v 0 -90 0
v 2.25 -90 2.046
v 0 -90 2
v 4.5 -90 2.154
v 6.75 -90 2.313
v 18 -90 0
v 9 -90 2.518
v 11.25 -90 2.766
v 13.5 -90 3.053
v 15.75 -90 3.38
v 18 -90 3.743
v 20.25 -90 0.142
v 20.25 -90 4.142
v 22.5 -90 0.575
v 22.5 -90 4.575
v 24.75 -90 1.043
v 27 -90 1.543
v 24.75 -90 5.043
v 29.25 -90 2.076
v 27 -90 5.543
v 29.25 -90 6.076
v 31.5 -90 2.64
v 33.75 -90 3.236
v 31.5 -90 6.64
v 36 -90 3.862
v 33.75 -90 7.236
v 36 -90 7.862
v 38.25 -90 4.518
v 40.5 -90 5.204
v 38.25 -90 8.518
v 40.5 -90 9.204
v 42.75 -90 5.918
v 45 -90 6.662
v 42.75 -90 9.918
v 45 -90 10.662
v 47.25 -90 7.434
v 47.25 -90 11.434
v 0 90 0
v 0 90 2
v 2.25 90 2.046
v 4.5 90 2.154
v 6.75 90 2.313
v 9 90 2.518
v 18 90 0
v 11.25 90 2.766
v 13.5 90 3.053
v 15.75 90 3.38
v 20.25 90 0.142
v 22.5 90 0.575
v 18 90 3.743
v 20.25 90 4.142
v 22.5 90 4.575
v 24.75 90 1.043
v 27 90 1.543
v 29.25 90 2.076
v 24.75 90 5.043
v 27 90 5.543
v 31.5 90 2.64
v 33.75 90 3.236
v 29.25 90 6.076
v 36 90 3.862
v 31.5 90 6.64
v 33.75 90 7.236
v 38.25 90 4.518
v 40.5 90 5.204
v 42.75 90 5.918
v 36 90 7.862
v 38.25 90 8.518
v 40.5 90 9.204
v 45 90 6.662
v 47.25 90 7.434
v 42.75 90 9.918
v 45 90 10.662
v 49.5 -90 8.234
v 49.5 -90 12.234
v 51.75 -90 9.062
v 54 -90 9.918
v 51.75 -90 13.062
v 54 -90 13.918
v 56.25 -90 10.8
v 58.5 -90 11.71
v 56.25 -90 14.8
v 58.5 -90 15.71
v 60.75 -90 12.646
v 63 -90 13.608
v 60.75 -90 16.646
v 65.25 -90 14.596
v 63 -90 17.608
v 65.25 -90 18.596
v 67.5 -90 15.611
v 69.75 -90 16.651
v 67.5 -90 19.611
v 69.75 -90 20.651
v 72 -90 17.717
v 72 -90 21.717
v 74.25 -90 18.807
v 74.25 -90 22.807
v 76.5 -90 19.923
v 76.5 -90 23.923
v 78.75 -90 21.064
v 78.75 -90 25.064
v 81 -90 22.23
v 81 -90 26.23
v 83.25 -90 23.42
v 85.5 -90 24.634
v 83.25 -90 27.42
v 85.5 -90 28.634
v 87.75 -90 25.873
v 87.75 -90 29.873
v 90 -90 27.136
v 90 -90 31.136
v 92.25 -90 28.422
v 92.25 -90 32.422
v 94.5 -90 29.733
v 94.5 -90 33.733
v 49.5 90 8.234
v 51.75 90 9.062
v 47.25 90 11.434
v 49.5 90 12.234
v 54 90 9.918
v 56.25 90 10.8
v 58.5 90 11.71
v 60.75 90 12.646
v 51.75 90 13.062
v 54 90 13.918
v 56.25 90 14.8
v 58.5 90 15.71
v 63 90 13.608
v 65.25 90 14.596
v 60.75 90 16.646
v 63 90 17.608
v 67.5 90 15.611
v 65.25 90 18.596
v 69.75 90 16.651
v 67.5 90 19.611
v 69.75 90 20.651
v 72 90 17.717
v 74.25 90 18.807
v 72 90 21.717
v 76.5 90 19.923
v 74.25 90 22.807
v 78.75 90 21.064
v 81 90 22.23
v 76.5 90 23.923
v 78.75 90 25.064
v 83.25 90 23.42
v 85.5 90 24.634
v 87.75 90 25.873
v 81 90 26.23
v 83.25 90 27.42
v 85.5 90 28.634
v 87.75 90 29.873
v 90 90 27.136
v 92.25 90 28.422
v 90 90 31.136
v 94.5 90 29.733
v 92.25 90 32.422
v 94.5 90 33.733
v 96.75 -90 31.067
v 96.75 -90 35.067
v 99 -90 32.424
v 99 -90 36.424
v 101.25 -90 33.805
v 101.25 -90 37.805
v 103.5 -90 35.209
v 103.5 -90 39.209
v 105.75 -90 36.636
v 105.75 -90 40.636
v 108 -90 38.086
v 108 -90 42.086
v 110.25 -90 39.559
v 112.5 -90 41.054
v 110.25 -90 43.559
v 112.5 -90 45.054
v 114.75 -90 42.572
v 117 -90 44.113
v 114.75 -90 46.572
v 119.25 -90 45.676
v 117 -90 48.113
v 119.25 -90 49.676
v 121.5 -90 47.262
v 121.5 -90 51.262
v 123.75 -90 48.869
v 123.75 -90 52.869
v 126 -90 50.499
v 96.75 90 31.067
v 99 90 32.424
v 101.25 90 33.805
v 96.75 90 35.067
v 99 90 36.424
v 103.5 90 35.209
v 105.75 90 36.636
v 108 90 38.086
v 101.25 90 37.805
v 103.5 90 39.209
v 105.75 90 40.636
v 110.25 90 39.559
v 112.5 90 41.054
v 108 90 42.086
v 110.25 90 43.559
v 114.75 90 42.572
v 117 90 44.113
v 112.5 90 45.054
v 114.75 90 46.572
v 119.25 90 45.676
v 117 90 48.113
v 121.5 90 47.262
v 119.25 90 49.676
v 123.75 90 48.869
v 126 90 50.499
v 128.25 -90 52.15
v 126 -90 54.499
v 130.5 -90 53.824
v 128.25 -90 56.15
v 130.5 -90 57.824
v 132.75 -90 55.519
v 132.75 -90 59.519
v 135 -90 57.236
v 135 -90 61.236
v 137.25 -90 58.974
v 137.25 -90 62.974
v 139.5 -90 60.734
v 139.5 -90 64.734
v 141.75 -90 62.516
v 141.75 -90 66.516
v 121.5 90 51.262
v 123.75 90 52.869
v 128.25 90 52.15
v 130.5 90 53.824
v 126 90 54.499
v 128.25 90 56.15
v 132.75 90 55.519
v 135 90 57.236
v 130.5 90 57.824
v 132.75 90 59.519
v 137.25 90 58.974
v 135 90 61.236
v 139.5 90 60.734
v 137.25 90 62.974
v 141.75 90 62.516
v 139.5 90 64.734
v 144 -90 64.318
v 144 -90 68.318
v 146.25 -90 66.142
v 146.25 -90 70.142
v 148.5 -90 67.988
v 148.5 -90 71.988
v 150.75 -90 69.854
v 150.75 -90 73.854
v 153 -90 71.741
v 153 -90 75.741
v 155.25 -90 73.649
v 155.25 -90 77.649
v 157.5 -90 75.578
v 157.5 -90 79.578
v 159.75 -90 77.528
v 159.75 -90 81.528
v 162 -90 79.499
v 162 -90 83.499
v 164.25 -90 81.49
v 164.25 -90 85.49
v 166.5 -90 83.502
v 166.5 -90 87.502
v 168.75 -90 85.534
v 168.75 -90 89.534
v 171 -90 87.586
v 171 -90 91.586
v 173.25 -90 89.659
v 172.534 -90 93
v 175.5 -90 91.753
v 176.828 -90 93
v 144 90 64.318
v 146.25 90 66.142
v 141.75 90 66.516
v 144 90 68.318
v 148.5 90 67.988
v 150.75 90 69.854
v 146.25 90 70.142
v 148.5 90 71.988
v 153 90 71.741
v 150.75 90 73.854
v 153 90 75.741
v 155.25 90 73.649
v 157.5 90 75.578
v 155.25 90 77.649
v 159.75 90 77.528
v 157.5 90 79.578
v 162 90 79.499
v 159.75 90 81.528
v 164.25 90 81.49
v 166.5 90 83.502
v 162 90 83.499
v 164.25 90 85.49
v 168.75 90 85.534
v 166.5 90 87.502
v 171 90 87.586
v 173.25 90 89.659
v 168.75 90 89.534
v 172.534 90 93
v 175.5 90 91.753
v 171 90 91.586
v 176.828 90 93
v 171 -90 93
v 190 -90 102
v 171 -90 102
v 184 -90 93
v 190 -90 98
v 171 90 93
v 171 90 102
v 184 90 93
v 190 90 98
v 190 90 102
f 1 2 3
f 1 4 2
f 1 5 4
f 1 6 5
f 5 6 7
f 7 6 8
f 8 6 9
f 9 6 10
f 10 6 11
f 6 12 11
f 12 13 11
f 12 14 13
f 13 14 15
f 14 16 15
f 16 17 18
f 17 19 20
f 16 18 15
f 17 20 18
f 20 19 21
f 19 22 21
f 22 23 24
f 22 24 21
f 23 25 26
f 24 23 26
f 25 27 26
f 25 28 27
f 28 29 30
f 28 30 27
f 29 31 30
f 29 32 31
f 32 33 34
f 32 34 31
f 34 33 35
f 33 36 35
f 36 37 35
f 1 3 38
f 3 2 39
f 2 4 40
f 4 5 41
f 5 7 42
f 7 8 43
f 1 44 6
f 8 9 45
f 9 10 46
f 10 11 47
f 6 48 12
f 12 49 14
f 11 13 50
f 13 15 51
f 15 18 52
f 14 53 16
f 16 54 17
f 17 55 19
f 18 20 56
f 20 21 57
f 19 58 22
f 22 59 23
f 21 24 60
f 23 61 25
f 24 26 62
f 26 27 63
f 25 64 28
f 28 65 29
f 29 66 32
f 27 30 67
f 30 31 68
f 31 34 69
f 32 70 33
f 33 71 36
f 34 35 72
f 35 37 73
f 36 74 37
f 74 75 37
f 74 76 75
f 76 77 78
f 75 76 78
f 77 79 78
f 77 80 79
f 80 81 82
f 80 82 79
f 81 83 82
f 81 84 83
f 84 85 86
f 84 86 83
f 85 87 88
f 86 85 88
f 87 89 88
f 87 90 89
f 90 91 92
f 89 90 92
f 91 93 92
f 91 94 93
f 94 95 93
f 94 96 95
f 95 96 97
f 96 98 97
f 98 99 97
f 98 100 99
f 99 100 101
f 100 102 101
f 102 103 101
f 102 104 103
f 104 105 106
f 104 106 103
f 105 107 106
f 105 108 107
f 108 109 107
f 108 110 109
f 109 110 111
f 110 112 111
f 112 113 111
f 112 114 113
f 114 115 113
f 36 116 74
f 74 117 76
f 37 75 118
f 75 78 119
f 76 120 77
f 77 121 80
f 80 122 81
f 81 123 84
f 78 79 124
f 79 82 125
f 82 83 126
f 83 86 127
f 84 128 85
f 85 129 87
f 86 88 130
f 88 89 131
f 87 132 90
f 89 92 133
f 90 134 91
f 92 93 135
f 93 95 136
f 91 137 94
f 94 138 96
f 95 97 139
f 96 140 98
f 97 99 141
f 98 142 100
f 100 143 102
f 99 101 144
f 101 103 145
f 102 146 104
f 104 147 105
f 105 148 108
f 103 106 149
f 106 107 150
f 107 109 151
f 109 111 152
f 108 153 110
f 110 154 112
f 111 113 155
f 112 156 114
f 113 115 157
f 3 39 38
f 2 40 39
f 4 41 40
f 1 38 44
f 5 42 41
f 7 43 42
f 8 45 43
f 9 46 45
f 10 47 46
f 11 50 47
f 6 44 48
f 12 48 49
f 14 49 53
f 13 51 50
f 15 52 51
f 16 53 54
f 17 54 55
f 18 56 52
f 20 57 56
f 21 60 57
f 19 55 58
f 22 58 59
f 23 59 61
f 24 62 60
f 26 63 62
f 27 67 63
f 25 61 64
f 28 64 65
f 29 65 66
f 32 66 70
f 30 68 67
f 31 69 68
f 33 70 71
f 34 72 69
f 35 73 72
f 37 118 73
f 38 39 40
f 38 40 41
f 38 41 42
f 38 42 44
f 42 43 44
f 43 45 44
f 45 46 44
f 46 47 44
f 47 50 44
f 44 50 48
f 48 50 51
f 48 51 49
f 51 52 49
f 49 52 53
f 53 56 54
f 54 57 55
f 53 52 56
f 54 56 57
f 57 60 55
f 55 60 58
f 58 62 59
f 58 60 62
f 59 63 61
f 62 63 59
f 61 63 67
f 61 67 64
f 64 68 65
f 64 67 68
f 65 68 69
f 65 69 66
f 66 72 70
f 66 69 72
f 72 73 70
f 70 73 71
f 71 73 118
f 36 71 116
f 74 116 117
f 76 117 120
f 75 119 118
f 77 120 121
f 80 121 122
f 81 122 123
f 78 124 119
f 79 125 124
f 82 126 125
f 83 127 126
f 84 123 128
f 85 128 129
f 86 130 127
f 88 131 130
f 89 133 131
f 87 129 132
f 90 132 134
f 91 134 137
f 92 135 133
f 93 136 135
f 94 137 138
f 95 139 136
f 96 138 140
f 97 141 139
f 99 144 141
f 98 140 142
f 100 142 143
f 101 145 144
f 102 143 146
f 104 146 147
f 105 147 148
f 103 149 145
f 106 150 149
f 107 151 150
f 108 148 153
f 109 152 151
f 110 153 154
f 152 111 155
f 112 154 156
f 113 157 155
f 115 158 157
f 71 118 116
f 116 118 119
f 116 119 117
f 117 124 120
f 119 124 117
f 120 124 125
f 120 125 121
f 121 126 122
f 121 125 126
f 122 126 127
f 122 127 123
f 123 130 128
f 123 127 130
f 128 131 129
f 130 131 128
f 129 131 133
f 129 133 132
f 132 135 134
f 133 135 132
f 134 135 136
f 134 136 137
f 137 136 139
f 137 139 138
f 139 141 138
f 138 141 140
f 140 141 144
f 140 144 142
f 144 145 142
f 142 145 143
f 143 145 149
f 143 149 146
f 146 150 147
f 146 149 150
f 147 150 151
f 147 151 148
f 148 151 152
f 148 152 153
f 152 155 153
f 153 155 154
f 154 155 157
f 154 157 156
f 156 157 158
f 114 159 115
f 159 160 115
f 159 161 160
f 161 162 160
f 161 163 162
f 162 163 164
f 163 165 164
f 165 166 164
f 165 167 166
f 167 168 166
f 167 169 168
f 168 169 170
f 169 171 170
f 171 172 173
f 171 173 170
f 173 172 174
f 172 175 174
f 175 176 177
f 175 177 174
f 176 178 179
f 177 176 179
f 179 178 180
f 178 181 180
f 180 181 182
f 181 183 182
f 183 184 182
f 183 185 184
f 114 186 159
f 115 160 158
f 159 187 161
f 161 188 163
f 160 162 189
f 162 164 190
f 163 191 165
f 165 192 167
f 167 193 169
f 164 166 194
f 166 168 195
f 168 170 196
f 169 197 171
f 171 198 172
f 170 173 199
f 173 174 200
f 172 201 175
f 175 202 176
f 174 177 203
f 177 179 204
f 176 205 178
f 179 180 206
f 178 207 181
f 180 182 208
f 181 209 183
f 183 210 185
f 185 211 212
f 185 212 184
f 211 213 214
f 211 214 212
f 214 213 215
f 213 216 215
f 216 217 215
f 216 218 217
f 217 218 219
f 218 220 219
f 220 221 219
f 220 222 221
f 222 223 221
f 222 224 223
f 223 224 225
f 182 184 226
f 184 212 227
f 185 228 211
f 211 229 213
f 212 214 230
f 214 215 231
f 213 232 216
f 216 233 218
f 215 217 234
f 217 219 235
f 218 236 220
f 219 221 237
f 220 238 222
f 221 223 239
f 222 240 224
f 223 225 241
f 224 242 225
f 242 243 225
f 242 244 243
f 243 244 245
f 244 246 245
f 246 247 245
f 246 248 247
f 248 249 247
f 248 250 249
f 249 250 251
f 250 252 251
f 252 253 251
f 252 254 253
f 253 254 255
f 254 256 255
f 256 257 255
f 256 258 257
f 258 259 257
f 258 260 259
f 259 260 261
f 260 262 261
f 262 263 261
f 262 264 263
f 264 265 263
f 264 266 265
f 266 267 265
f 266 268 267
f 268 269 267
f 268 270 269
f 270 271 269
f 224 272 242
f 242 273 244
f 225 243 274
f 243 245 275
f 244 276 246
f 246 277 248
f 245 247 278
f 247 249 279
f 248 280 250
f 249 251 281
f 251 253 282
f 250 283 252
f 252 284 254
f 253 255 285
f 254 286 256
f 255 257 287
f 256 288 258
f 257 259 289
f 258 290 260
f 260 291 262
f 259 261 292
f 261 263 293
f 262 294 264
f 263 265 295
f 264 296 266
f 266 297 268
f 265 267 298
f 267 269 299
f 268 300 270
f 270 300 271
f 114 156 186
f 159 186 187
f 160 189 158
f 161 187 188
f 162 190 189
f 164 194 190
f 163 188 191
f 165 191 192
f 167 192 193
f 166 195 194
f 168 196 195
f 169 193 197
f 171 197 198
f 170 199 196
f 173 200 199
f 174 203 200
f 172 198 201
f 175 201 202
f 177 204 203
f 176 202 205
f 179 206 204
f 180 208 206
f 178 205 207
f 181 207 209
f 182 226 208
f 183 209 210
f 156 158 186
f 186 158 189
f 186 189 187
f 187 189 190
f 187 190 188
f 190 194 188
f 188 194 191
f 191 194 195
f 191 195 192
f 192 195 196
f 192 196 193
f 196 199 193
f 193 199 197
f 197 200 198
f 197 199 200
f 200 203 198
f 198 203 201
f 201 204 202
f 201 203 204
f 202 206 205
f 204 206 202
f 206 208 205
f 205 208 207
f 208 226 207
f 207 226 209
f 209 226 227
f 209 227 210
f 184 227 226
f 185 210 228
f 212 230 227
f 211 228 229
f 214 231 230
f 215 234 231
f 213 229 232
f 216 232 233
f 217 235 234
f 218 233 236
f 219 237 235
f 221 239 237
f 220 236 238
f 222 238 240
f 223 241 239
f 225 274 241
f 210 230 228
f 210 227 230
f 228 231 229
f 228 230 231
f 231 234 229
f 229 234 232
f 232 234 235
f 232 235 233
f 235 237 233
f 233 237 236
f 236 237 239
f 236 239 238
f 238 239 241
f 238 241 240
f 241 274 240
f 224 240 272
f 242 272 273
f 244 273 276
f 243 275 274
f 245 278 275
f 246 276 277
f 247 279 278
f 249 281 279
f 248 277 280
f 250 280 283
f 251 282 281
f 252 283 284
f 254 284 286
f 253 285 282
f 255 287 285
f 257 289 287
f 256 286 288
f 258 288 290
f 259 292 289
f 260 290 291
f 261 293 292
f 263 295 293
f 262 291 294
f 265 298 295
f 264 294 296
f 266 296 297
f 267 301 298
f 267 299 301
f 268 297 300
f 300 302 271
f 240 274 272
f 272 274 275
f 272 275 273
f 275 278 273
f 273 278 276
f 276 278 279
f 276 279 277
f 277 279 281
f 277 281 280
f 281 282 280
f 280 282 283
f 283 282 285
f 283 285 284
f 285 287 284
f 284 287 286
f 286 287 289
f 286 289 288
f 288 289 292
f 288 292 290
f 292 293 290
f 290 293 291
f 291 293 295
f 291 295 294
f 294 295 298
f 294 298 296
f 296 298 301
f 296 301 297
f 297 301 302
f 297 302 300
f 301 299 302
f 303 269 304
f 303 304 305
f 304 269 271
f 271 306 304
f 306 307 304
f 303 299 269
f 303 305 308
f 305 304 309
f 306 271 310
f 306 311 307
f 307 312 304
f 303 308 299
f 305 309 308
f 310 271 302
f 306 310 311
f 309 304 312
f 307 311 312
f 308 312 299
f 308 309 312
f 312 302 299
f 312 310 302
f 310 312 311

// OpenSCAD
// Curved centre scoop for the tennis-ball collector.
//
// Coordinate system:
//   X = ball travel, from the floor-level front lip toward the collector
//   Y = scoop width
//   Z = height above the floor
//
// The default 180 x 180 x 100 mm scoop fits common hobby printers.
// Set render_part to "left" or "right" to export two 90 mm wide halves.

$fn = 72;

// Main dimensions (mm).
scoop_width = 180;
scoop_length = 180;
scoop_height = 100;
shell_thickness = 4;
front_lip_height = 2;

// Shape controls.
// Values above 1 make the entry shallow and the rear progressively steeper.
curve_exponent = 1.75;
curve_steps = 80;

// Optional edge guides. Keep disabled when this is only the centre section.
edge_guides = false;
guide_height = 20;
guide_thickness = 4;

// Detachable rear mounts. A continuous keyed rail is printed with the scoop;
// two identical ears slide onto it from either side and bolt to the base.
mounting_rail = true;
mount_ear_length = 38;
mount_ear_width = 28;
mount_ear_height = 16;
mount_hole_diameter = 5.5;
mount_hole_edge_offset = 12;
mount_fit_clearance = 0.30; // Per side; tune for the printer/material.

// Roller fit-check dimensions: 120 mm capture width x 45 mm diameter.
roller_diameter = 45;
roller_width = 120;
roller_bore_diameter = 6.35;
roller_shaft_length = 190;
roller_center_x = 135;
roller_ramp_gap = 60;
roller_center_z =
    front_lip_height
    + (scoop_height - front_lip_height)
        * pow(roller_center_x / scoop_length, curve_exponent)
    + roller_diameter / 2
    + roller_ramp_gap;
roller_bracket_thickness = 8;
roller_bracket_width = 38;
roller_shaft_clearance = 0.35;
motor_body_diameter = 37;
motor_body_length = 45;
shaft_coupler_diameter = 16;
shaft_coupler_length = 20;

// "scoop", "left", "right", "ear", "roller", or "assembly".
// Wrapper SCAD files set part_override before including this source.
render_part = is_undef(part_override) ? "scoop" : part_override;

function ramp_z(x) =
    front_lip_height
    + (scoop_height - front_lip_height) * pow(x / scoop_length, curve_exponent);

function inner_z(x) = max(0, ramp_z(x) - shell_thickness);

function shell_profile_points() =
    concat(
        [for (i = [0 : curve_steps])
            let(x = scoop_length * i / curve_steps)
            [x, ramp_z(x)]],
        [for (i = [curve_steps : -1 : 0])
            let(x = scoop_length * i / curve_steps)
            [x, inner_z(x)]]
    );

function guide_profile_points() =
    concat(
        [for (i = [0 : curve_steps])
            let(x = scoop_length * i / curve_steps)
            [x, ramp_z(x)]],
        [for (i = [curve_steps : -1 : 0])
            let(x = scoop_length * i / curve_steps)
            [x, ramp_z(x) + guide_height]]
    );

module curved_shell(width = scoop_width) {
    rotate([90, 0, 0])
        linear_extrude(height = width, center = true, convexity = 10)
            polygon(points = shell_profile_points());
}

module side_guide(y) {
    translate([0, y, 0])
        rotate([90, 0, 0])
            linear_extrude(height = guide_thickness, center = true, convexity = 10)
                polygon(points = guide_profile_points());
}

function rail_profile(clearance = 0) = [
    [scoop_length - 9 - clearance, scoop_height - 7 - clearance],
    [scoop_length + 4 + clearance, scoop_height - 7 - clearance],
    [scoop_length + 10 + clearance, scoop_height - 2 - clearance],
    [scoop_length + 10 + clearance, scoop_height + 2 + clearance],
    [scoop_length - 9 - clearance, scoop_height + 2 + clearance]
];

module rear_mounting_rail() {
    rotate([90, 0, 0])
        linear_extrude(height = scoop_width, center = true, convexity = 10)
            polygon(points = rail_profile());
}

module mounting_ear_at(y = 0) {
    ear_start_x = scoop_length - 12;
    ear_start_z = scoop_height - 10;
    hole_x = scoop_length + mount_ear_length - mount_hole_edge_offset;

    difference() {
        translate([ear_start_x, y - mount_ear_width / 2, ear_start_z])
            cube([
                mount_ear_length + 12,
                mount_ear_width,
                mount_ear_height
            ]);

        // Keyed channel runs through the ear so it can slide along the rail.
        translate([0, y, 0])
            rotate([90, 0, 0])
                linear_extrude(
                    height = mount_ear_width + 2,
                    center = true,
                    convexity = 10
                )
                    polygon(points = rail_profile(mount_fit_clearance));

        translate([hole_x, y, ear_start_z - 0.5])
            cylinder(h = mount_ear_height + 1, d = mount_hole_diameter);
    }
}

module standalone_mounting_ear() {
    // Localized near the origin for straightforward slicer placement.
    translate([
        -(scoop_length - 12),
        mount_ear_width / 2,
        -(scoop_height - 10)
    ])
        mounting_ear_at(0);
}

module collector_roller() {
    difference() {
        rotate([90, 0, 0])
            cylinder(h = roller_width, d = roller_diameter, center = true);

        rotate([90, 0, 0])
            cylinder(
                h = roller_width + 2,
                d = roller_bore_diameter,
                center = true
            );
    }
}

module roller_support(y) {
    support_bottom_z = scoop_height + 2;
    support_height = roller_center_z - support_bottom_z + 25;

    difference() {
        translate([
            roller_center_x - roller_bracket_width / 2,
            y - roller_bracket_thickness / 2,
            support_bottom_z
        ])
            cube([
                roller_bracket_width,
                roller_bracket_thickness,
                support_height
            ]);

        translate([roller_center_x, y, roller_center_z])
            rotate([90, 0, 0])
                cylinder(
                    h = roller_bracket_thickness + 2,
                    d = roller_bore_diameter + roller_shaft_clearance,
                    center = true
                );
    }
}

module roller_drive_assembly() {
    support_y = roller_width / 2 + roller_bracket_thickness / 2 + 3;
    motor_y = support_y + roller_bracket_thickness / 2
        + shaft_coupler_length + motor_body_length / 2;

    // Printable roller.
    color([0.10, 0.10, 0.10])
        translate([roller_center_x, 0, roller_center_z])
            collector_roller();

    // Metal shaft: reference geometry only, not intended for printing.
    color([0.72, 0.72, 0.75])
        translate([roller_center_x, 0, roller_center_z])
            rotate([90, 0, 0])
                cylinder(
                    h = roller_shaft_length,
                    d = roller_bore_diameter,
                    center = true
                );

    color([0.85, 0.68, 0.15]) {
        roller_support(-support_y);
        roller_support( support_y);
    }

    // Shaft coupler and 37 mm gearmotor envelope for clearance checking.
    color([0.55, 0.55, 0.58])
        translate([
            roller_center_x,
            support_y + roller_bracket_thickness / 2
                + shaft_coupler_length / 2,
            roller_center_z
        ])
            rotate([90, 0, 0])
                cylinder(
                    h = shaft_coupler_length,
                    d = shaft_coupler_diameter,
                    center = true
                );

    color([0.25, 0.25, 0.28])
        translate([roller_center_x, motor_y, roller_center_z])
            rotate([90, 0, 0])
                cylinder(
                    h = motor_body_length,
                    d = motor_body_diameter,
                    center = true
                );

    // 67 mm tennis-ball reference showing the intended roller compression.
    color([0.72, 0.90, 0.12, 0.70])
        translate([
            roller_center_x,
            0,
            ramp_z(roller_center_x) + 67 / 2
        ])
            sphere(d = 67);
}

module complete_scoop() {
    union() {
        curved_shell();

        if (edge_guides) {
            side_guide(-scoop_width / 2 + guide_thickness / 2);
            side_guide( scoop_width / 2 - guide_thickness / 2);
        }

        if (mounting_rail)
            rear_mounting_rail();
    }
}

module selected_part() {
    if (render_part == "left") {
        intersection() {
            complete_scoop();
            translate([-1, -scoop_width / 2 - 1, -1])
                cube([
                    scoop_length + 12,
                    scoop_width / 2 + 1,
                    scoop_height + guide_height + 2
                ]);
        }
    } else if (render_part == "right") {
        intersection() {
            complete_scoop();
            translate([-1, 0, -1])
                cube([
                    scoop_length + 12,
                    scoop_width / 2 + 1,
                    scoop_height + guide_height + 2
                ]);
        }
    } else if (render_part == "ear") {
        standalone_mounting_ear();
    } else if (render_part == "roller") {
        collector_roller();
    } else if (render_part == "assembly") {
        complete_scoop();
        mounting_ear_at(-scoop_width / 2 + mount_ear_width / 2);
        mounting_ear_at( scoop_width / 2 - mount_ear_width / 2);
        roller_drive_assembly();
    } else {
        complete_scoop();
    }
}

selected_part();
